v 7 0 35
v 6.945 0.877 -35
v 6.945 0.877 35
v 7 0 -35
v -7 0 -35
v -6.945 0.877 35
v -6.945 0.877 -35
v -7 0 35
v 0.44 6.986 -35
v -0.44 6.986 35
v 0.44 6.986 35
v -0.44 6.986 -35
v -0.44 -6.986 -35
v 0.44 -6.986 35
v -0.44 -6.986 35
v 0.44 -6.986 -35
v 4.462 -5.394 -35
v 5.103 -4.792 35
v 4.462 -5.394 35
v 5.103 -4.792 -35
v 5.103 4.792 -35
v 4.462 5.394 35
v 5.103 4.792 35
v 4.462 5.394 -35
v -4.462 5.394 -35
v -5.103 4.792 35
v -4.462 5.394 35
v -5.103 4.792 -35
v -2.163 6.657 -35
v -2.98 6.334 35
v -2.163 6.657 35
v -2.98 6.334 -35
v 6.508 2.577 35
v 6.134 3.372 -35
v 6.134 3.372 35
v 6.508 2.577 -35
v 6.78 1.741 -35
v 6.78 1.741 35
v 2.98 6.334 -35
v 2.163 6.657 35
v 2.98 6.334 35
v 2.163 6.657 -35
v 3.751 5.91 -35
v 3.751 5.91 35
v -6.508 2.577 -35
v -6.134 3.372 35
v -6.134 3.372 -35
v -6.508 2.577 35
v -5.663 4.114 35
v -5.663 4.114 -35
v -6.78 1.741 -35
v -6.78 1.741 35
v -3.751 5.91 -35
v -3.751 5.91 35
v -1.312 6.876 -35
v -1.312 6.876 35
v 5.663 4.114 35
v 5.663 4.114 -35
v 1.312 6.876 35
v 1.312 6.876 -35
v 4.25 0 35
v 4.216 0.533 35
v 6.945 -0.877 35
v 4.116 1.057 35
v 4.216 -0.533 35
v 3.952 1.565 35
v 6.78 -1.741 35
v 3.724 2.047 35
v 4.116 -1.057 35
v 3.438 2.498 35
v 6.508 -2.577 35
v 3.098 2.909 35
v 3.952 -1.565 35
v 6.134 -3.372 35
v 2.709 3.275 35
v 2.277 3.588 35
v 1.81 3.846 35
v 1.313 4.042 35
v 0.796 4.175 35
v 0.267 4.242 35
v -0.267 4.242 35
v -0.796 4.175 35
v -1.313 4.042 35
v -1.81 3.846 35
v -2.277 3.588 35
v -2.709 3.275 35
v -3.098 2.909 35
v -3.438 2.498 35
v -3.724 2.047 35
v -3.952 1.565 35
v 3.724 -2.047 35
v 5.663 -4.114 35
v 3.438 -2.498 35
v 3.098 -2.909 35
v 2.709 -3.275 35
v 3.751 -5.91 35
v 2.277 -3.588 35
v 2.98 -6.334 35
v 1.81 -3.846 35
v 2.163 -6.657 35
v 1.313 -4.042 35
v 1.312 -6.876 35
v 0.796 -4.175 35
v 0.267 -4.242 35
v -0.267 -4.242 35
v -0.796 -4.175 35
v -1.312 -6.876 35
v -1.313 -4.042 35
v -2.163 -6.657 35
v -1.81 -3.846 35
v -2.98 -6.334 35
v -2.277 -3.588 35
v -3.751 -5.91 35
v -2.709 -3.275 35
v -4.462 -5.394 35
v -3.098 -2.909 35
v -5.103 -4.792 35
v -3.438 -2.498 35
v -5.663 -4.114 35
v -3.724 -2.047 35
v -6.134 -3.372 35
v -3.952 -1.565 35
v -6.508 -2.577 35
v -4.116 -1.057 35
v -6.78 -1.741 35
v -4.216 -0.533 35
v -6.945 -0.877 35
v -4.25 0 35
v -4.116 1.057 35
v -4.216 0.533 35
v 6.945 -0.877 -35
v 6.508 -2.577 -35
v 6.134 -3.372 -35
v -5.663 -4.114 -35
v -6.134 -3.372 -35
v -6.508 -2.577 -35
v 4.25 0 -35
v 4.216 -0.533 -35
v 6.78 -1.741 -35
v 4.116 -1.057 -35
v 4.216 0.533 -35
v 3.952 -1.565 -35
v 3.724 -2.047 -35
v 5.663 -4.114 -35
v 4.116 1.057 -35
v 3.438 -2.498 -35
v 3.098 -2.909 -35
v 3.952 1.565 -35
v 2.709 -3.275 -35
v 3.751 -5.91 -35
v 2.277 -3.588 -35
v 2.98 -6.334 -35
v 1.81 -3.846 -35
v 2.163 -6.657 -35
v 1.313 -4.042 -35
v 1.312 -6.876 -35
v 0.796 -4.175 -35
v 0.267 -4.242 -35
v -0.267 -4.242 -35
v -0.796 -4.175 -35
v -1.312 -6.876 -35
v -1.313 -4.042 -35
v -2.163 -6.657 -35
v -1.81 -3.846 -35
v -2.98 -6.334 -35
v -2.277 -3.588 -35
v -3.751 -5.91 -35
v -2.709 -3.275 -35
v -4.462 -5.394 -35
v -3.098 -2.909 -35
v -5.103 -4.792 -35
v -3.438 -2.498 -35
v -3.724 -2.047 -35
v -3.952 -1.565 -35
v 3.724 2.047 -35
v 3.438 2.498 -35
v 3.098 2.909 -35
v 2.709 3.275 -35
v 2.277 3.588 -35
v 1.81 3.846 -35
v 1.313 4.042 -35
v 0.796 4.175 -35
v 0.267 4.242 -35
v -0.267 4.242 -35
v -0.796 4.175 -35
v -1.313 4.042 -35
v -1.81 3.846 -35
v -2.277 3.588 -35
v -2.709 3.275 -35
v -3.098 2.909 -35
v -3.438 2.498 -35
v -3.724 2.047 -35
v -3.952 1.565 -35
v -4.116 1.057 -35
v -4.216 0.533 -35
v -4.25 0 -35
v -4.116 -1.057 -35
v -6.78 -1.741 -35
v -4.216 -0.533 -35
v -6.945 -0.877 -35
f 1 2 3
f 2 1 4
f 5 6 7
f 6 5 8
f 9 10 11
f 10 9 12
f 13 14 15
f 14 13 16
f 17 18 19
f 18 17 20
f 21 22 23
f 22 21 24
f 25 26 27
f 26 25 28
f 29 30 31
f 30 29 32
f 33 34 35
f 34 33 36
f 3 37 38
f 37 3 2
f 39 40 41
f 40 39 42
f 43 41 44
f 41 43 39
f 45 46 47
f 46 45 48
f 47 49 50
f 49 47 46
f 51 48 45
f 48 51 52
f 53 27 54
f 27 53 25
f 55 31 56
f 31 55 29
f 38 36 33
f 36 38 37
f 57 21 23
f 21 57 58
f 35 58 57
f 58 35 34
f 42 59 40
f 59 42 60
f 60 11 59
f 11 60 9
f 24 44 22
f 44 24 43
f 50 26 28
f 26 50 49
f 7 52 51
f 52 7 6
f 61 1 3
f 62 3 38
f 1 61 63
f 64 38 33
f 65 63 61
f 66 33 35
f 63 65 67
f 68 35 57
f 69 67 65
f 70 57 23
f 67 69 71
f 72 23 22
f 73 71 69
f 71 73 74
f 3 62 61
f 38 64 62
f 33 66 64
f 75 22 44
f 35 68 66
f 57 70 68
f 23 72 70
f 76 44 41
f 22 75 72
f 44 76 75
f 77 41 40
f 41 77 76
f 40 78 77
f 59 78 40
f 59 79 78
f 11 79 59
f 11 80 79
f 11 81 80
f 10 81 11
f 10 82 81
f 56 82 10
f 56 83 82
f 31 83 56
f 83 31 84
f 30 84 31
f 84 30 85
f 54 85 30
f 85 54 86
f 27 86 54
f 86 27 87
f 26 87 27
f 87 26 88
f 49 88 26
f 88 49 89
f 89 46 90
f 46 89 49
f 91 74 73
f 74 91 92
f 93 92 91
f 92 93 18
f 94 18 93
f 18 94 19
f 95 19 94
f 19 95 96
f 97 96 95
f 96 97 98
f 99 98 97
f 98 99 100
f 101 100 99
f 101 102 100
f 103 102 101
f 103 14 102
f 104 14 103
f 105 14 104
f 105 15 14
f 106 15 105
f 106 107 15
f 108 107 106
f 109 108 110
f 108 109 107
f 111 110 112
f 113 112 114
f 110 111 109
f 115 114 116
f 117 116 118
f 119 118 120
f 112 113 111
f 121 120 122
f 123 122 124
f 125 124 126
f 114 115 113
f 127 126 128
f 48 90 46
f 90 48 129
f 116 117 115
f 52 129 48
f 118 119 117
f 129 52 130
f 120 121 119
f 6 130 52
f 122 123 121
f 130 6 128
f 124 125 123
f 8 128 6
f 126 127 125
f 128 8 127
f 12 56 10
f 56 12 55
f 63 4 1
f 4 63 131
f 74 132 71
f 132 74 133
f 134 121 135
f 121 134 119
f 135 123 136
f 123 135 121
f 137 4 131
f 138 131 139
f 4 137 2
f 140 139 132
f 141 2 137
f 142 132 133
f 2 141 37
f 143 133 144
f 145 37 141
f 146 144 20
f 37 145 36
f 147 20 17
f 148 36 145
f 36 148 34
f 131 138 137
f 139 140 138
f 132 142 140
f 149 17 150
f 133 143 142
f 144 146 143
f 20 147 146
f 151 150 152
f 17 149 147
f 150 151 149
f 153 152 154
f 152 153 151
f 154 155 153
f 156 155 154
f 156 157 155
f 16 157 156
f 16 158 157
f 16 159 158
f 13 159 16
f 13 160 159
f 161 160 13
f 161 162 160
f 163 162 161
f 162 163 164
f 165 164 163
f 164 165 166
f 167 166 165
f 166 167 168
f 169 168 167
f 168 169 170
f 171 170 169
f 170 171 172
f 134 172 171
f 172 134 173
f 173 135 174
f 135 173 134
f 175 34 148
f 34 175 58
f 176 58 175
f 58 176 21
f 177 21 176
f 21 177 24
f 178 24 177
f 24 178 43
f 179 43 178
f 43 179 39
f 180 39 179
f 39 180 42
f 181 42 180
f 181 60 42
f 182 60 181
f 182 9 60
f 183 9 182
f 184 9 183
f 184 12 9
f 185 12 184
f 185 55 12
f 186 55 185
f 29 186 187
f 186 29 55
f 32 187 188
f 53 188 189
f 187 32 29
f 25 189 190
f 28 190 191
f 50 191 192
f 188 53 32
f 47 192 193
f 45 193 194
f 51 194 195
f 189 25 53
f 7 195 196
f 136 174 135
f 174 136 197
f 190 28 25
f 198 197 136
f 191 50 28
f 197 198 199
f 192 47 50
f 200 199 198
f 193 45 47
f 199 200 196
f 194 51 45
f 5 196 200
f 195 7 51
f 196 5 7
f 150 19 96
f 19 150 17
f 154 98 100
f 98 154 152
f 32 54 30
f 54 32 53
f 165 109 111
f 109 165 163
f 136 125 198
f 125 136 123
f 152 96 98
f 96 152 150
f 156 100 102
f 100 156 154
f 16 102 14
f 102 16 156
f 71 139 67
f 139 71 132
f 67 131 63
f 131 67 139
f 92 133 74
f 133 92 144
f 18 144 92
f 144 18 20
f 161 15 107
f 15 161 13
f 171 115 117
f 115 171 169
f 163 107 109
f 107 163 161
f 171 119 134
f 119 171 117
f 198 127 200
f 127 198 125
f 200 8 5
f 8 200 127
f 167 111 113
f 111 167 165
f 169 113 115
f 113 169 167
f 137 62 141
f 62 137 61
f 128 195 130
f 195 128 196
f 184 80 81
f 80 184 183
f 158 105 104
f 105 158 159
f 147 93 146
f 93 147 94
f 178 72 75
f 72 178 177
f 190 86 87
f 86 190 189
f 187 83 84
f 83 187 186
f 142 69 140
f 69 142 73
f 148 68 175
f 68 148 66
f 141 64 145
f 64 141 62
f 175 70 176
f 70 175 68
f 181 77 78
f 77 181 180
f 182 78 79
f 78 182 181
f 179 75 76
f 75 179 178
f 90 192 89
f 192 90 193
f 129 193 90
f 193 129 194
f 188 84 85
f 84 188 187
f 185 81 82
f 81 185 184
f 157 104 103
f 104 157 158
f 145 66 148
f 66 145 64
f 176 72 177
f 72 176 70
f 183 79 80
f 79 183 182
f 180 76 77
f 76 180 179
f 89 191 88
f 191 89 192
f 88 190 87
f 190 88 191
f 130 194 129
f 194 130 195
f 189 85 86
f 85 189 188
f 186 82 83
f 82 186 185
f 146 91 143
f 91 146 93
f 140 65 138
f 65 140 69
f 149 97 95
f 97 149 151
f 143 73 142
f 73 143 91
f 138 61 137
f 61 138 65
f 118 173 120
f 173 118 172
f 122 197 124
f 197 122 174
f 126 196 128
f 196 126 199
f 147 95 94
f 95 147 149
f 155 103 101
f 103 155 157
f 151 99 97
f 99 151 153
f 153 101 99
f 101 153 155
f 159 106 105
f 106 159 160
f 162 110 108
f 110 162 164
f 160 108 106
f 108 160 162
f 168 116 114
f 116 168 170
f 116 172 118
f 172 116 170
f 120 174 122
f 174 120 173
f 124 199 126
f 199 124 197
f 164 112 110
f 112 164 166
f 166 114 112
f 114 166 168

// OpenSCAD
$fn = 50;


difference() {
	union() {
		translate(v = [0, 0, -35.0000000000]) {
			cylinder(h = 70, r = 7.0000000000);
		}
	}
	union() {
		translate(v = [0, 0, -100.0000000000]) {
			cylinder(h = 200, r = 4.2500000000);
		}
	}
}
